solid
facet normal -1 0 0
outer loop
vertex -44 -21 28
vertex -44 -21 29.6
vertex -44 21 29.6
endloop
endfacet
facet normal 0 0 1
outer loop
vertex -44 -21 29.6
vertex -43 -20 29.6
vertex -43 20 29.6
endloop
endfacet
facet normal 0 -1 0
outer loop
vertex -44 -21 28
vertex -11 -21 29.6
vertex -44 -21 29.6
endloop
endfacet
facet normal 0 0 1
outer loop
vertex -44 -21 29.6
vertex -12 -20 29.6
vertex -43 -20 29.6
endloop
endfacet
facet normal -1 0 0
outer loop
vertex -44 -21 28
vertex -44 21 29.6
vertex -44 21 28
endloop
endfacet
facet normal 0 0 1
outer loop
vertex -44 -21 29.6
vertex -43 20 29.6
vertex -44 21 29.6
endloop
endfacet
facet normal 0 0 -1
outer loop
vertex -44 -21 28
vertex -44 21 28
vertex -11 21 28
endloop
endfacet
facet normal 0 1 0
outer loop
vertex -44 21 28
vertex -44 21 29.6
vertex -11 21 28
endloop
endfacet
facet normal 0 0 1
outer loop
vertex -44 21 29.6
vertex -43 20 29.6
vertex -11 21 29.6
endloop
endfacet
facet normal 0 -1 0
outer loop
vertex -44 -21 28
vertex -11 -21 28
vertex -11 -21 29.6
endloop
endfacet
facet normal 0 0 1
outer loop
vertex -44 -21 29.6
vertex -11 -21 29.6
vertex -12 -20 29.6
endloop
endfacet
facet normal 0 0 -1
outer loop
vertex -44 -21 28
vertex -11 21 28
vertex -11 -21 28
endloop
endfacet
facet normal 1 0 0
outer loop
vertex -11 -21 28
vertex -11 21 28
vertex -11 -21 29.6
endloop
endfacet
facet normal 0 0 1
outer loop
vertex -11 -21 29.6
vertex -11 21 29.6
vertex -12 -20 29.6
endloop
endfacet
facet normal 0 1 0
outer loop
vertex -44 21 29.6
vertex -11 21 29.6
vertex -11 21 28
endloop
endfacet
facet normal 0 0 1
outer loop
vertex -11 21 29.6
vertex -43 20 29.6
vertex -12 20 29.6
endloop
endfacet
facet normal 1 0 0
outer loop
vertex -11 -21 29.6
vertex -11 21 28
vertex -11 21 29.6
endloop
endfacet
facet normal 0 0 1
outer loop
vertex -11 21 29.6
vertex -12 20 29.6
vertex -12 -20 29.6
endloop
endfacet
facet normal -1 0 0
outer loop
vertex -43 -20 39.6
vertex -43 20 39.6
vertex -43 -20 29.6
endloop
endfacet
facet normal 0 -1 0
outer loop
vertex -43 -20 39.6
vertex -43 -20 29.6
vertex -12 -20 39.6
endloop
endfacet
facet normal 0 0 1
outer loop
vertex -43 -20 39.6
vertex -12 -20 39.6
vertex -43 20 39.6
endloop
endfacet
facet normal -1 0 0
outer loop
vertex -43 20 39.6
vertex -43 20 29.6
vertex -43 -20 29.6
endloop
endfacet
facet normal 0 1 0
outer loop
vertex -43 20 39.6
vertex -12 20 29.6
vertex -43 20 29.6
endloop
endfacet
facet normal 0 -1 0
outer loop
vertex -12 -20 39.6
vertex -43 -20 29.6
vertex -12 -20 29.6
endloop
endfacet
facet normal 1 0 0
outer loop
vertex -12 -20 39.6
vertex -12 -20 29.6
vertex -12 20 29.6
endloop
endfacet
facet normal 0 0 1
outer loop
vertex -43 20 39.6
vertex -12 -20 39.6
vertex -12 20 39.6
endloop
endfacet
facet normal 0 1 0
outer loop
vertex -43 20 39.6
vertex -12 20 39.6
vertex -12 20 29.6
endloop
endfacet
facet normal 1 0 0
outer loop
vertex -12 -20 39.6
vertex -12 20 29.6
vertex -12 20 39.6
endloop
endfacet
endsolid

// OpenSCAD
// file: ../md_vitamins.scad
// Envelopes of the bought electronics, placed where the parts expect them (for fit checks and renders)
SG90_STL = "/Users/hemangvora/OpenDuck/upstream/Open_Duck_Mini/mini_bdx/robots/open_duck_mini_v2/sg90.stl";
module v_sg90_jaw() multmatrix([[1,0,0,JAW_P[0]-5.7],[0,0,-1,-SG_BASE],[0,1,0,JAW_P[1]],[0,0,0,1]]) import(SG90_STL);
module v_radxa() {                         // Radxa Zero 3W 65 x 30 board on 6 mm standoffs + 16 mm component/wire budget
    translate([RADXA_X0, RADXA_Y0, CH_Z1 + 6]) { cube([65, 30, 1.6]); translate([2, 2, 1.6]) cube([61, 26, 16]); translate([0, 0, -2]) cube([65, 30, 2]); }
}
module v_buck() translate([-30, -13.5, CH_Z1 + 1]) cube([46, 27, 12]);            // XY-3606 (HW-688), generous envelope
module v_camera() translate([103.8, -12.5, EYE_C[1] - 14.5]) { cube([1.0, 25, 24]); translate([1.0, 12.5 - 4.25, 14.5 - 4.25]) cube([5.2, 8.5, 8.5]); }  // Pi cam v2 / IMX219 board + lens module
module v_tof() translate([103.8, TOF_C[0] - 6.5, TOF_C[1] - 6.5]) { cube([1.0, 13, 13]); translate([1.0, 6.5 - 3.2, 6.5 - 1.5]) cube([1.75, 6.4, 3.0]); }
module head_vitamins() { v_sg90_jaw(); v_radxa(); v_buck(); v_camera(); v_tof(); }

// ---------------- body electronics ----------------
module v_pack()    translate([DK_X0, -PACK[1] / 2, DK_Z1]) cube(PACK);                       // 3S1P Samsung 30Q pack
module v_bms()     translate([DK_X0 + 5, -31, DK_Z1 + PACK[2] + 0.5]) cube([48, 62, 7]);      // 3S 40 A BMS, 5-FET board
module v_adapter() translate([-44, -21, SHELF[4] + 4]) { cube([33, 42, 1.6]); translate([1, 1, 1.6]) cube([31, 40, 10]); }   // Bus Servo Adapter (A)
module v_switch()  {   // AUTO MT 12 V 20 A toggle, 12 mm hole; body 28 x 16 behind the panel, cover outside
    translate([DK_X0, SWITCH_C[0] - 14, SWITCH_C[1] - 8]) cube([45, 28, 16]);
    translate([BX_R - 25, SWITCH_C[0] - 14, SWITCH_C[1] - 8]) cube([25, 28, 16]);
}
module v_xt30()    translate([DK_X0, XT30_C[0] - 5.1, XT30_C[1] - 2.6]) cube([16, 10.2, 5.2]);
module v_balance() translate([DK_X0, BAL_C[0] - 6.2, BAL_C[1] - 2.9]) cube([8, 12.4, 5.8]);
module v_caps()    for (y = [26, 33]) translate([-40, y, SHELF[4] + 5.3]) rotate([0, 90, 0]) cylinder(d = 10.2, h = 21);  // 2 x 1000 uF 25 V lying on the shelf
module body_vitamins() { v_pack(); v_bms(); v_adapter(); v_switch(); v_xt30(); v_balance(); v_caps(); }
// file: ../md_params.scad
// =====================================================================
//  Microduck-look skin for the Open Duck Mini v2 skeleton
//  Shared parameters and helpers.
//  Frame: Open Duck print/robot frame, mm. +x forward, +y left, +z up.
//  Every part is modelled where it sits on the robot (zero pose).
// =====================================================================

$fn = 72;
EPS = 0.01;

// ---------- fasteners ----------
INSERT_D   = 4.0;   // hole for M3 x 5 brass heat-set insert (Amazon B0DZ8B7FW1)
INSERT_L   = 6.0;   // hole depth for that insert
M3_CLR     = 3.4;   // M3 clearance
M3_HEAD    = 6.5;   // M3 socket-head counterbore
M3_NUT     = 6.4;   // M3 nut across corners (+clearance)
M2_TAP     = 1.8;   // M2 self-tapping pilot (SG90 tab screws, servo adapter)
M25_TAP    = 2.2;   // M2.5 self-tapping pilot (Radxa)
M2_CLR     = 2.4;

// ---------- colours (for previews only) ----------
C_WHITE = [0.95, 0.94, 0.90];
C_BLACK = [0.13, 0.13, 0.14];

// ---------- helpers ----------
function lerp(a, b, t) = a + (b - a) * t;

// Section with vertical sides from zb to zc and a superellipse cap from zc to zt.
// Points are (y, z). n = 2 gives an ellipse, larger n gives a squarer top.
function se_pts(w, zb, zc, zt, n, N = 56) =
    concat(
        [[ w, zb]],
        [for (i = [0:N]) let(t = i * 180 / N, c = cos(t), s = sin(t))
            [w * sign(c) * pow(abs(c), 2 / n), zc + (zt - zc) * pow(abs(s), 2 / n)]],
        [[-w, zb]]
    );

// st = [x, half_width, z_bottom, z_curve_start, z_top, exponent]
module station(st, inset = 0, ext = 0) {
    translate([st[0], 0, 0]) rotate([90, 0, 90])
        linear_extrude(height = EPS, center = true)
            offset(delta = -inset)
                polygon(se_pts(st[1], st[2] - ext, st[3], st[4], st[5]));
}

// piecewise loft through convex stations (hull of neighbours)
module loft(sts, inset = 0, ext = 0) {
    for (i = [0:len(sts) - 2])
        hull() { station(sts[i], inset, ext); station(sts[i + 1], inset, ext); }
}

// station parameters interpolated at any x inside the list
function st_at(sts, x) =
    let(i = max([for (k = [0:len(sts) - 2]) if (sts[k][0] <= x) k]),
        a = sts[i], b = sts[i + 1], t = (x - a[0]) / (b[0] - a[0]))
    [x, lerp(a[1], b[1], t), lerp(a[2], b[2], t), lerp(a[3], b[3], t),
        lerp(a[4], b[4], t), lerp(a[5], b[5], t)];

// heat-set insert pocket: opening at origin, going along -z by default
module insert_hole(depth = INSERT_L, d = INSERT_D) {
    translate([0, 0, -depth]) cylinder(d = d, h = depth + EPS);
    translate([0, 0, -0.6]) cylinder(d1 = d, d2 = d + 0.8, h = 0.6 + EPS);   // lead-in chamfer
}

// M3 clearance with counterbore, axis +z, counterbore at the top
module m3_cb(len_total, cb_depth) {
    translate([0, 0, -EPS]) cylinder(d = M3_CLR, h = len_total + 2 * EPS);
    translate([0, 0, len_total - cb_depth]) cylinder(d = M3_HEAD, h = cb_depth + 1);
}

module rrect(x0, x1, y0, y1, r) {
    translate([x0 + r, y0 + r]) offset(r = r) square([x1 - x0 - 2 * r, y1 - y0 - 2 * r]);
}
// main file
include <../md_params.scad>
include <../md_head.scad>
include <../md_body.scad>
include <../md_vitamins.scad>
v_adapter();
